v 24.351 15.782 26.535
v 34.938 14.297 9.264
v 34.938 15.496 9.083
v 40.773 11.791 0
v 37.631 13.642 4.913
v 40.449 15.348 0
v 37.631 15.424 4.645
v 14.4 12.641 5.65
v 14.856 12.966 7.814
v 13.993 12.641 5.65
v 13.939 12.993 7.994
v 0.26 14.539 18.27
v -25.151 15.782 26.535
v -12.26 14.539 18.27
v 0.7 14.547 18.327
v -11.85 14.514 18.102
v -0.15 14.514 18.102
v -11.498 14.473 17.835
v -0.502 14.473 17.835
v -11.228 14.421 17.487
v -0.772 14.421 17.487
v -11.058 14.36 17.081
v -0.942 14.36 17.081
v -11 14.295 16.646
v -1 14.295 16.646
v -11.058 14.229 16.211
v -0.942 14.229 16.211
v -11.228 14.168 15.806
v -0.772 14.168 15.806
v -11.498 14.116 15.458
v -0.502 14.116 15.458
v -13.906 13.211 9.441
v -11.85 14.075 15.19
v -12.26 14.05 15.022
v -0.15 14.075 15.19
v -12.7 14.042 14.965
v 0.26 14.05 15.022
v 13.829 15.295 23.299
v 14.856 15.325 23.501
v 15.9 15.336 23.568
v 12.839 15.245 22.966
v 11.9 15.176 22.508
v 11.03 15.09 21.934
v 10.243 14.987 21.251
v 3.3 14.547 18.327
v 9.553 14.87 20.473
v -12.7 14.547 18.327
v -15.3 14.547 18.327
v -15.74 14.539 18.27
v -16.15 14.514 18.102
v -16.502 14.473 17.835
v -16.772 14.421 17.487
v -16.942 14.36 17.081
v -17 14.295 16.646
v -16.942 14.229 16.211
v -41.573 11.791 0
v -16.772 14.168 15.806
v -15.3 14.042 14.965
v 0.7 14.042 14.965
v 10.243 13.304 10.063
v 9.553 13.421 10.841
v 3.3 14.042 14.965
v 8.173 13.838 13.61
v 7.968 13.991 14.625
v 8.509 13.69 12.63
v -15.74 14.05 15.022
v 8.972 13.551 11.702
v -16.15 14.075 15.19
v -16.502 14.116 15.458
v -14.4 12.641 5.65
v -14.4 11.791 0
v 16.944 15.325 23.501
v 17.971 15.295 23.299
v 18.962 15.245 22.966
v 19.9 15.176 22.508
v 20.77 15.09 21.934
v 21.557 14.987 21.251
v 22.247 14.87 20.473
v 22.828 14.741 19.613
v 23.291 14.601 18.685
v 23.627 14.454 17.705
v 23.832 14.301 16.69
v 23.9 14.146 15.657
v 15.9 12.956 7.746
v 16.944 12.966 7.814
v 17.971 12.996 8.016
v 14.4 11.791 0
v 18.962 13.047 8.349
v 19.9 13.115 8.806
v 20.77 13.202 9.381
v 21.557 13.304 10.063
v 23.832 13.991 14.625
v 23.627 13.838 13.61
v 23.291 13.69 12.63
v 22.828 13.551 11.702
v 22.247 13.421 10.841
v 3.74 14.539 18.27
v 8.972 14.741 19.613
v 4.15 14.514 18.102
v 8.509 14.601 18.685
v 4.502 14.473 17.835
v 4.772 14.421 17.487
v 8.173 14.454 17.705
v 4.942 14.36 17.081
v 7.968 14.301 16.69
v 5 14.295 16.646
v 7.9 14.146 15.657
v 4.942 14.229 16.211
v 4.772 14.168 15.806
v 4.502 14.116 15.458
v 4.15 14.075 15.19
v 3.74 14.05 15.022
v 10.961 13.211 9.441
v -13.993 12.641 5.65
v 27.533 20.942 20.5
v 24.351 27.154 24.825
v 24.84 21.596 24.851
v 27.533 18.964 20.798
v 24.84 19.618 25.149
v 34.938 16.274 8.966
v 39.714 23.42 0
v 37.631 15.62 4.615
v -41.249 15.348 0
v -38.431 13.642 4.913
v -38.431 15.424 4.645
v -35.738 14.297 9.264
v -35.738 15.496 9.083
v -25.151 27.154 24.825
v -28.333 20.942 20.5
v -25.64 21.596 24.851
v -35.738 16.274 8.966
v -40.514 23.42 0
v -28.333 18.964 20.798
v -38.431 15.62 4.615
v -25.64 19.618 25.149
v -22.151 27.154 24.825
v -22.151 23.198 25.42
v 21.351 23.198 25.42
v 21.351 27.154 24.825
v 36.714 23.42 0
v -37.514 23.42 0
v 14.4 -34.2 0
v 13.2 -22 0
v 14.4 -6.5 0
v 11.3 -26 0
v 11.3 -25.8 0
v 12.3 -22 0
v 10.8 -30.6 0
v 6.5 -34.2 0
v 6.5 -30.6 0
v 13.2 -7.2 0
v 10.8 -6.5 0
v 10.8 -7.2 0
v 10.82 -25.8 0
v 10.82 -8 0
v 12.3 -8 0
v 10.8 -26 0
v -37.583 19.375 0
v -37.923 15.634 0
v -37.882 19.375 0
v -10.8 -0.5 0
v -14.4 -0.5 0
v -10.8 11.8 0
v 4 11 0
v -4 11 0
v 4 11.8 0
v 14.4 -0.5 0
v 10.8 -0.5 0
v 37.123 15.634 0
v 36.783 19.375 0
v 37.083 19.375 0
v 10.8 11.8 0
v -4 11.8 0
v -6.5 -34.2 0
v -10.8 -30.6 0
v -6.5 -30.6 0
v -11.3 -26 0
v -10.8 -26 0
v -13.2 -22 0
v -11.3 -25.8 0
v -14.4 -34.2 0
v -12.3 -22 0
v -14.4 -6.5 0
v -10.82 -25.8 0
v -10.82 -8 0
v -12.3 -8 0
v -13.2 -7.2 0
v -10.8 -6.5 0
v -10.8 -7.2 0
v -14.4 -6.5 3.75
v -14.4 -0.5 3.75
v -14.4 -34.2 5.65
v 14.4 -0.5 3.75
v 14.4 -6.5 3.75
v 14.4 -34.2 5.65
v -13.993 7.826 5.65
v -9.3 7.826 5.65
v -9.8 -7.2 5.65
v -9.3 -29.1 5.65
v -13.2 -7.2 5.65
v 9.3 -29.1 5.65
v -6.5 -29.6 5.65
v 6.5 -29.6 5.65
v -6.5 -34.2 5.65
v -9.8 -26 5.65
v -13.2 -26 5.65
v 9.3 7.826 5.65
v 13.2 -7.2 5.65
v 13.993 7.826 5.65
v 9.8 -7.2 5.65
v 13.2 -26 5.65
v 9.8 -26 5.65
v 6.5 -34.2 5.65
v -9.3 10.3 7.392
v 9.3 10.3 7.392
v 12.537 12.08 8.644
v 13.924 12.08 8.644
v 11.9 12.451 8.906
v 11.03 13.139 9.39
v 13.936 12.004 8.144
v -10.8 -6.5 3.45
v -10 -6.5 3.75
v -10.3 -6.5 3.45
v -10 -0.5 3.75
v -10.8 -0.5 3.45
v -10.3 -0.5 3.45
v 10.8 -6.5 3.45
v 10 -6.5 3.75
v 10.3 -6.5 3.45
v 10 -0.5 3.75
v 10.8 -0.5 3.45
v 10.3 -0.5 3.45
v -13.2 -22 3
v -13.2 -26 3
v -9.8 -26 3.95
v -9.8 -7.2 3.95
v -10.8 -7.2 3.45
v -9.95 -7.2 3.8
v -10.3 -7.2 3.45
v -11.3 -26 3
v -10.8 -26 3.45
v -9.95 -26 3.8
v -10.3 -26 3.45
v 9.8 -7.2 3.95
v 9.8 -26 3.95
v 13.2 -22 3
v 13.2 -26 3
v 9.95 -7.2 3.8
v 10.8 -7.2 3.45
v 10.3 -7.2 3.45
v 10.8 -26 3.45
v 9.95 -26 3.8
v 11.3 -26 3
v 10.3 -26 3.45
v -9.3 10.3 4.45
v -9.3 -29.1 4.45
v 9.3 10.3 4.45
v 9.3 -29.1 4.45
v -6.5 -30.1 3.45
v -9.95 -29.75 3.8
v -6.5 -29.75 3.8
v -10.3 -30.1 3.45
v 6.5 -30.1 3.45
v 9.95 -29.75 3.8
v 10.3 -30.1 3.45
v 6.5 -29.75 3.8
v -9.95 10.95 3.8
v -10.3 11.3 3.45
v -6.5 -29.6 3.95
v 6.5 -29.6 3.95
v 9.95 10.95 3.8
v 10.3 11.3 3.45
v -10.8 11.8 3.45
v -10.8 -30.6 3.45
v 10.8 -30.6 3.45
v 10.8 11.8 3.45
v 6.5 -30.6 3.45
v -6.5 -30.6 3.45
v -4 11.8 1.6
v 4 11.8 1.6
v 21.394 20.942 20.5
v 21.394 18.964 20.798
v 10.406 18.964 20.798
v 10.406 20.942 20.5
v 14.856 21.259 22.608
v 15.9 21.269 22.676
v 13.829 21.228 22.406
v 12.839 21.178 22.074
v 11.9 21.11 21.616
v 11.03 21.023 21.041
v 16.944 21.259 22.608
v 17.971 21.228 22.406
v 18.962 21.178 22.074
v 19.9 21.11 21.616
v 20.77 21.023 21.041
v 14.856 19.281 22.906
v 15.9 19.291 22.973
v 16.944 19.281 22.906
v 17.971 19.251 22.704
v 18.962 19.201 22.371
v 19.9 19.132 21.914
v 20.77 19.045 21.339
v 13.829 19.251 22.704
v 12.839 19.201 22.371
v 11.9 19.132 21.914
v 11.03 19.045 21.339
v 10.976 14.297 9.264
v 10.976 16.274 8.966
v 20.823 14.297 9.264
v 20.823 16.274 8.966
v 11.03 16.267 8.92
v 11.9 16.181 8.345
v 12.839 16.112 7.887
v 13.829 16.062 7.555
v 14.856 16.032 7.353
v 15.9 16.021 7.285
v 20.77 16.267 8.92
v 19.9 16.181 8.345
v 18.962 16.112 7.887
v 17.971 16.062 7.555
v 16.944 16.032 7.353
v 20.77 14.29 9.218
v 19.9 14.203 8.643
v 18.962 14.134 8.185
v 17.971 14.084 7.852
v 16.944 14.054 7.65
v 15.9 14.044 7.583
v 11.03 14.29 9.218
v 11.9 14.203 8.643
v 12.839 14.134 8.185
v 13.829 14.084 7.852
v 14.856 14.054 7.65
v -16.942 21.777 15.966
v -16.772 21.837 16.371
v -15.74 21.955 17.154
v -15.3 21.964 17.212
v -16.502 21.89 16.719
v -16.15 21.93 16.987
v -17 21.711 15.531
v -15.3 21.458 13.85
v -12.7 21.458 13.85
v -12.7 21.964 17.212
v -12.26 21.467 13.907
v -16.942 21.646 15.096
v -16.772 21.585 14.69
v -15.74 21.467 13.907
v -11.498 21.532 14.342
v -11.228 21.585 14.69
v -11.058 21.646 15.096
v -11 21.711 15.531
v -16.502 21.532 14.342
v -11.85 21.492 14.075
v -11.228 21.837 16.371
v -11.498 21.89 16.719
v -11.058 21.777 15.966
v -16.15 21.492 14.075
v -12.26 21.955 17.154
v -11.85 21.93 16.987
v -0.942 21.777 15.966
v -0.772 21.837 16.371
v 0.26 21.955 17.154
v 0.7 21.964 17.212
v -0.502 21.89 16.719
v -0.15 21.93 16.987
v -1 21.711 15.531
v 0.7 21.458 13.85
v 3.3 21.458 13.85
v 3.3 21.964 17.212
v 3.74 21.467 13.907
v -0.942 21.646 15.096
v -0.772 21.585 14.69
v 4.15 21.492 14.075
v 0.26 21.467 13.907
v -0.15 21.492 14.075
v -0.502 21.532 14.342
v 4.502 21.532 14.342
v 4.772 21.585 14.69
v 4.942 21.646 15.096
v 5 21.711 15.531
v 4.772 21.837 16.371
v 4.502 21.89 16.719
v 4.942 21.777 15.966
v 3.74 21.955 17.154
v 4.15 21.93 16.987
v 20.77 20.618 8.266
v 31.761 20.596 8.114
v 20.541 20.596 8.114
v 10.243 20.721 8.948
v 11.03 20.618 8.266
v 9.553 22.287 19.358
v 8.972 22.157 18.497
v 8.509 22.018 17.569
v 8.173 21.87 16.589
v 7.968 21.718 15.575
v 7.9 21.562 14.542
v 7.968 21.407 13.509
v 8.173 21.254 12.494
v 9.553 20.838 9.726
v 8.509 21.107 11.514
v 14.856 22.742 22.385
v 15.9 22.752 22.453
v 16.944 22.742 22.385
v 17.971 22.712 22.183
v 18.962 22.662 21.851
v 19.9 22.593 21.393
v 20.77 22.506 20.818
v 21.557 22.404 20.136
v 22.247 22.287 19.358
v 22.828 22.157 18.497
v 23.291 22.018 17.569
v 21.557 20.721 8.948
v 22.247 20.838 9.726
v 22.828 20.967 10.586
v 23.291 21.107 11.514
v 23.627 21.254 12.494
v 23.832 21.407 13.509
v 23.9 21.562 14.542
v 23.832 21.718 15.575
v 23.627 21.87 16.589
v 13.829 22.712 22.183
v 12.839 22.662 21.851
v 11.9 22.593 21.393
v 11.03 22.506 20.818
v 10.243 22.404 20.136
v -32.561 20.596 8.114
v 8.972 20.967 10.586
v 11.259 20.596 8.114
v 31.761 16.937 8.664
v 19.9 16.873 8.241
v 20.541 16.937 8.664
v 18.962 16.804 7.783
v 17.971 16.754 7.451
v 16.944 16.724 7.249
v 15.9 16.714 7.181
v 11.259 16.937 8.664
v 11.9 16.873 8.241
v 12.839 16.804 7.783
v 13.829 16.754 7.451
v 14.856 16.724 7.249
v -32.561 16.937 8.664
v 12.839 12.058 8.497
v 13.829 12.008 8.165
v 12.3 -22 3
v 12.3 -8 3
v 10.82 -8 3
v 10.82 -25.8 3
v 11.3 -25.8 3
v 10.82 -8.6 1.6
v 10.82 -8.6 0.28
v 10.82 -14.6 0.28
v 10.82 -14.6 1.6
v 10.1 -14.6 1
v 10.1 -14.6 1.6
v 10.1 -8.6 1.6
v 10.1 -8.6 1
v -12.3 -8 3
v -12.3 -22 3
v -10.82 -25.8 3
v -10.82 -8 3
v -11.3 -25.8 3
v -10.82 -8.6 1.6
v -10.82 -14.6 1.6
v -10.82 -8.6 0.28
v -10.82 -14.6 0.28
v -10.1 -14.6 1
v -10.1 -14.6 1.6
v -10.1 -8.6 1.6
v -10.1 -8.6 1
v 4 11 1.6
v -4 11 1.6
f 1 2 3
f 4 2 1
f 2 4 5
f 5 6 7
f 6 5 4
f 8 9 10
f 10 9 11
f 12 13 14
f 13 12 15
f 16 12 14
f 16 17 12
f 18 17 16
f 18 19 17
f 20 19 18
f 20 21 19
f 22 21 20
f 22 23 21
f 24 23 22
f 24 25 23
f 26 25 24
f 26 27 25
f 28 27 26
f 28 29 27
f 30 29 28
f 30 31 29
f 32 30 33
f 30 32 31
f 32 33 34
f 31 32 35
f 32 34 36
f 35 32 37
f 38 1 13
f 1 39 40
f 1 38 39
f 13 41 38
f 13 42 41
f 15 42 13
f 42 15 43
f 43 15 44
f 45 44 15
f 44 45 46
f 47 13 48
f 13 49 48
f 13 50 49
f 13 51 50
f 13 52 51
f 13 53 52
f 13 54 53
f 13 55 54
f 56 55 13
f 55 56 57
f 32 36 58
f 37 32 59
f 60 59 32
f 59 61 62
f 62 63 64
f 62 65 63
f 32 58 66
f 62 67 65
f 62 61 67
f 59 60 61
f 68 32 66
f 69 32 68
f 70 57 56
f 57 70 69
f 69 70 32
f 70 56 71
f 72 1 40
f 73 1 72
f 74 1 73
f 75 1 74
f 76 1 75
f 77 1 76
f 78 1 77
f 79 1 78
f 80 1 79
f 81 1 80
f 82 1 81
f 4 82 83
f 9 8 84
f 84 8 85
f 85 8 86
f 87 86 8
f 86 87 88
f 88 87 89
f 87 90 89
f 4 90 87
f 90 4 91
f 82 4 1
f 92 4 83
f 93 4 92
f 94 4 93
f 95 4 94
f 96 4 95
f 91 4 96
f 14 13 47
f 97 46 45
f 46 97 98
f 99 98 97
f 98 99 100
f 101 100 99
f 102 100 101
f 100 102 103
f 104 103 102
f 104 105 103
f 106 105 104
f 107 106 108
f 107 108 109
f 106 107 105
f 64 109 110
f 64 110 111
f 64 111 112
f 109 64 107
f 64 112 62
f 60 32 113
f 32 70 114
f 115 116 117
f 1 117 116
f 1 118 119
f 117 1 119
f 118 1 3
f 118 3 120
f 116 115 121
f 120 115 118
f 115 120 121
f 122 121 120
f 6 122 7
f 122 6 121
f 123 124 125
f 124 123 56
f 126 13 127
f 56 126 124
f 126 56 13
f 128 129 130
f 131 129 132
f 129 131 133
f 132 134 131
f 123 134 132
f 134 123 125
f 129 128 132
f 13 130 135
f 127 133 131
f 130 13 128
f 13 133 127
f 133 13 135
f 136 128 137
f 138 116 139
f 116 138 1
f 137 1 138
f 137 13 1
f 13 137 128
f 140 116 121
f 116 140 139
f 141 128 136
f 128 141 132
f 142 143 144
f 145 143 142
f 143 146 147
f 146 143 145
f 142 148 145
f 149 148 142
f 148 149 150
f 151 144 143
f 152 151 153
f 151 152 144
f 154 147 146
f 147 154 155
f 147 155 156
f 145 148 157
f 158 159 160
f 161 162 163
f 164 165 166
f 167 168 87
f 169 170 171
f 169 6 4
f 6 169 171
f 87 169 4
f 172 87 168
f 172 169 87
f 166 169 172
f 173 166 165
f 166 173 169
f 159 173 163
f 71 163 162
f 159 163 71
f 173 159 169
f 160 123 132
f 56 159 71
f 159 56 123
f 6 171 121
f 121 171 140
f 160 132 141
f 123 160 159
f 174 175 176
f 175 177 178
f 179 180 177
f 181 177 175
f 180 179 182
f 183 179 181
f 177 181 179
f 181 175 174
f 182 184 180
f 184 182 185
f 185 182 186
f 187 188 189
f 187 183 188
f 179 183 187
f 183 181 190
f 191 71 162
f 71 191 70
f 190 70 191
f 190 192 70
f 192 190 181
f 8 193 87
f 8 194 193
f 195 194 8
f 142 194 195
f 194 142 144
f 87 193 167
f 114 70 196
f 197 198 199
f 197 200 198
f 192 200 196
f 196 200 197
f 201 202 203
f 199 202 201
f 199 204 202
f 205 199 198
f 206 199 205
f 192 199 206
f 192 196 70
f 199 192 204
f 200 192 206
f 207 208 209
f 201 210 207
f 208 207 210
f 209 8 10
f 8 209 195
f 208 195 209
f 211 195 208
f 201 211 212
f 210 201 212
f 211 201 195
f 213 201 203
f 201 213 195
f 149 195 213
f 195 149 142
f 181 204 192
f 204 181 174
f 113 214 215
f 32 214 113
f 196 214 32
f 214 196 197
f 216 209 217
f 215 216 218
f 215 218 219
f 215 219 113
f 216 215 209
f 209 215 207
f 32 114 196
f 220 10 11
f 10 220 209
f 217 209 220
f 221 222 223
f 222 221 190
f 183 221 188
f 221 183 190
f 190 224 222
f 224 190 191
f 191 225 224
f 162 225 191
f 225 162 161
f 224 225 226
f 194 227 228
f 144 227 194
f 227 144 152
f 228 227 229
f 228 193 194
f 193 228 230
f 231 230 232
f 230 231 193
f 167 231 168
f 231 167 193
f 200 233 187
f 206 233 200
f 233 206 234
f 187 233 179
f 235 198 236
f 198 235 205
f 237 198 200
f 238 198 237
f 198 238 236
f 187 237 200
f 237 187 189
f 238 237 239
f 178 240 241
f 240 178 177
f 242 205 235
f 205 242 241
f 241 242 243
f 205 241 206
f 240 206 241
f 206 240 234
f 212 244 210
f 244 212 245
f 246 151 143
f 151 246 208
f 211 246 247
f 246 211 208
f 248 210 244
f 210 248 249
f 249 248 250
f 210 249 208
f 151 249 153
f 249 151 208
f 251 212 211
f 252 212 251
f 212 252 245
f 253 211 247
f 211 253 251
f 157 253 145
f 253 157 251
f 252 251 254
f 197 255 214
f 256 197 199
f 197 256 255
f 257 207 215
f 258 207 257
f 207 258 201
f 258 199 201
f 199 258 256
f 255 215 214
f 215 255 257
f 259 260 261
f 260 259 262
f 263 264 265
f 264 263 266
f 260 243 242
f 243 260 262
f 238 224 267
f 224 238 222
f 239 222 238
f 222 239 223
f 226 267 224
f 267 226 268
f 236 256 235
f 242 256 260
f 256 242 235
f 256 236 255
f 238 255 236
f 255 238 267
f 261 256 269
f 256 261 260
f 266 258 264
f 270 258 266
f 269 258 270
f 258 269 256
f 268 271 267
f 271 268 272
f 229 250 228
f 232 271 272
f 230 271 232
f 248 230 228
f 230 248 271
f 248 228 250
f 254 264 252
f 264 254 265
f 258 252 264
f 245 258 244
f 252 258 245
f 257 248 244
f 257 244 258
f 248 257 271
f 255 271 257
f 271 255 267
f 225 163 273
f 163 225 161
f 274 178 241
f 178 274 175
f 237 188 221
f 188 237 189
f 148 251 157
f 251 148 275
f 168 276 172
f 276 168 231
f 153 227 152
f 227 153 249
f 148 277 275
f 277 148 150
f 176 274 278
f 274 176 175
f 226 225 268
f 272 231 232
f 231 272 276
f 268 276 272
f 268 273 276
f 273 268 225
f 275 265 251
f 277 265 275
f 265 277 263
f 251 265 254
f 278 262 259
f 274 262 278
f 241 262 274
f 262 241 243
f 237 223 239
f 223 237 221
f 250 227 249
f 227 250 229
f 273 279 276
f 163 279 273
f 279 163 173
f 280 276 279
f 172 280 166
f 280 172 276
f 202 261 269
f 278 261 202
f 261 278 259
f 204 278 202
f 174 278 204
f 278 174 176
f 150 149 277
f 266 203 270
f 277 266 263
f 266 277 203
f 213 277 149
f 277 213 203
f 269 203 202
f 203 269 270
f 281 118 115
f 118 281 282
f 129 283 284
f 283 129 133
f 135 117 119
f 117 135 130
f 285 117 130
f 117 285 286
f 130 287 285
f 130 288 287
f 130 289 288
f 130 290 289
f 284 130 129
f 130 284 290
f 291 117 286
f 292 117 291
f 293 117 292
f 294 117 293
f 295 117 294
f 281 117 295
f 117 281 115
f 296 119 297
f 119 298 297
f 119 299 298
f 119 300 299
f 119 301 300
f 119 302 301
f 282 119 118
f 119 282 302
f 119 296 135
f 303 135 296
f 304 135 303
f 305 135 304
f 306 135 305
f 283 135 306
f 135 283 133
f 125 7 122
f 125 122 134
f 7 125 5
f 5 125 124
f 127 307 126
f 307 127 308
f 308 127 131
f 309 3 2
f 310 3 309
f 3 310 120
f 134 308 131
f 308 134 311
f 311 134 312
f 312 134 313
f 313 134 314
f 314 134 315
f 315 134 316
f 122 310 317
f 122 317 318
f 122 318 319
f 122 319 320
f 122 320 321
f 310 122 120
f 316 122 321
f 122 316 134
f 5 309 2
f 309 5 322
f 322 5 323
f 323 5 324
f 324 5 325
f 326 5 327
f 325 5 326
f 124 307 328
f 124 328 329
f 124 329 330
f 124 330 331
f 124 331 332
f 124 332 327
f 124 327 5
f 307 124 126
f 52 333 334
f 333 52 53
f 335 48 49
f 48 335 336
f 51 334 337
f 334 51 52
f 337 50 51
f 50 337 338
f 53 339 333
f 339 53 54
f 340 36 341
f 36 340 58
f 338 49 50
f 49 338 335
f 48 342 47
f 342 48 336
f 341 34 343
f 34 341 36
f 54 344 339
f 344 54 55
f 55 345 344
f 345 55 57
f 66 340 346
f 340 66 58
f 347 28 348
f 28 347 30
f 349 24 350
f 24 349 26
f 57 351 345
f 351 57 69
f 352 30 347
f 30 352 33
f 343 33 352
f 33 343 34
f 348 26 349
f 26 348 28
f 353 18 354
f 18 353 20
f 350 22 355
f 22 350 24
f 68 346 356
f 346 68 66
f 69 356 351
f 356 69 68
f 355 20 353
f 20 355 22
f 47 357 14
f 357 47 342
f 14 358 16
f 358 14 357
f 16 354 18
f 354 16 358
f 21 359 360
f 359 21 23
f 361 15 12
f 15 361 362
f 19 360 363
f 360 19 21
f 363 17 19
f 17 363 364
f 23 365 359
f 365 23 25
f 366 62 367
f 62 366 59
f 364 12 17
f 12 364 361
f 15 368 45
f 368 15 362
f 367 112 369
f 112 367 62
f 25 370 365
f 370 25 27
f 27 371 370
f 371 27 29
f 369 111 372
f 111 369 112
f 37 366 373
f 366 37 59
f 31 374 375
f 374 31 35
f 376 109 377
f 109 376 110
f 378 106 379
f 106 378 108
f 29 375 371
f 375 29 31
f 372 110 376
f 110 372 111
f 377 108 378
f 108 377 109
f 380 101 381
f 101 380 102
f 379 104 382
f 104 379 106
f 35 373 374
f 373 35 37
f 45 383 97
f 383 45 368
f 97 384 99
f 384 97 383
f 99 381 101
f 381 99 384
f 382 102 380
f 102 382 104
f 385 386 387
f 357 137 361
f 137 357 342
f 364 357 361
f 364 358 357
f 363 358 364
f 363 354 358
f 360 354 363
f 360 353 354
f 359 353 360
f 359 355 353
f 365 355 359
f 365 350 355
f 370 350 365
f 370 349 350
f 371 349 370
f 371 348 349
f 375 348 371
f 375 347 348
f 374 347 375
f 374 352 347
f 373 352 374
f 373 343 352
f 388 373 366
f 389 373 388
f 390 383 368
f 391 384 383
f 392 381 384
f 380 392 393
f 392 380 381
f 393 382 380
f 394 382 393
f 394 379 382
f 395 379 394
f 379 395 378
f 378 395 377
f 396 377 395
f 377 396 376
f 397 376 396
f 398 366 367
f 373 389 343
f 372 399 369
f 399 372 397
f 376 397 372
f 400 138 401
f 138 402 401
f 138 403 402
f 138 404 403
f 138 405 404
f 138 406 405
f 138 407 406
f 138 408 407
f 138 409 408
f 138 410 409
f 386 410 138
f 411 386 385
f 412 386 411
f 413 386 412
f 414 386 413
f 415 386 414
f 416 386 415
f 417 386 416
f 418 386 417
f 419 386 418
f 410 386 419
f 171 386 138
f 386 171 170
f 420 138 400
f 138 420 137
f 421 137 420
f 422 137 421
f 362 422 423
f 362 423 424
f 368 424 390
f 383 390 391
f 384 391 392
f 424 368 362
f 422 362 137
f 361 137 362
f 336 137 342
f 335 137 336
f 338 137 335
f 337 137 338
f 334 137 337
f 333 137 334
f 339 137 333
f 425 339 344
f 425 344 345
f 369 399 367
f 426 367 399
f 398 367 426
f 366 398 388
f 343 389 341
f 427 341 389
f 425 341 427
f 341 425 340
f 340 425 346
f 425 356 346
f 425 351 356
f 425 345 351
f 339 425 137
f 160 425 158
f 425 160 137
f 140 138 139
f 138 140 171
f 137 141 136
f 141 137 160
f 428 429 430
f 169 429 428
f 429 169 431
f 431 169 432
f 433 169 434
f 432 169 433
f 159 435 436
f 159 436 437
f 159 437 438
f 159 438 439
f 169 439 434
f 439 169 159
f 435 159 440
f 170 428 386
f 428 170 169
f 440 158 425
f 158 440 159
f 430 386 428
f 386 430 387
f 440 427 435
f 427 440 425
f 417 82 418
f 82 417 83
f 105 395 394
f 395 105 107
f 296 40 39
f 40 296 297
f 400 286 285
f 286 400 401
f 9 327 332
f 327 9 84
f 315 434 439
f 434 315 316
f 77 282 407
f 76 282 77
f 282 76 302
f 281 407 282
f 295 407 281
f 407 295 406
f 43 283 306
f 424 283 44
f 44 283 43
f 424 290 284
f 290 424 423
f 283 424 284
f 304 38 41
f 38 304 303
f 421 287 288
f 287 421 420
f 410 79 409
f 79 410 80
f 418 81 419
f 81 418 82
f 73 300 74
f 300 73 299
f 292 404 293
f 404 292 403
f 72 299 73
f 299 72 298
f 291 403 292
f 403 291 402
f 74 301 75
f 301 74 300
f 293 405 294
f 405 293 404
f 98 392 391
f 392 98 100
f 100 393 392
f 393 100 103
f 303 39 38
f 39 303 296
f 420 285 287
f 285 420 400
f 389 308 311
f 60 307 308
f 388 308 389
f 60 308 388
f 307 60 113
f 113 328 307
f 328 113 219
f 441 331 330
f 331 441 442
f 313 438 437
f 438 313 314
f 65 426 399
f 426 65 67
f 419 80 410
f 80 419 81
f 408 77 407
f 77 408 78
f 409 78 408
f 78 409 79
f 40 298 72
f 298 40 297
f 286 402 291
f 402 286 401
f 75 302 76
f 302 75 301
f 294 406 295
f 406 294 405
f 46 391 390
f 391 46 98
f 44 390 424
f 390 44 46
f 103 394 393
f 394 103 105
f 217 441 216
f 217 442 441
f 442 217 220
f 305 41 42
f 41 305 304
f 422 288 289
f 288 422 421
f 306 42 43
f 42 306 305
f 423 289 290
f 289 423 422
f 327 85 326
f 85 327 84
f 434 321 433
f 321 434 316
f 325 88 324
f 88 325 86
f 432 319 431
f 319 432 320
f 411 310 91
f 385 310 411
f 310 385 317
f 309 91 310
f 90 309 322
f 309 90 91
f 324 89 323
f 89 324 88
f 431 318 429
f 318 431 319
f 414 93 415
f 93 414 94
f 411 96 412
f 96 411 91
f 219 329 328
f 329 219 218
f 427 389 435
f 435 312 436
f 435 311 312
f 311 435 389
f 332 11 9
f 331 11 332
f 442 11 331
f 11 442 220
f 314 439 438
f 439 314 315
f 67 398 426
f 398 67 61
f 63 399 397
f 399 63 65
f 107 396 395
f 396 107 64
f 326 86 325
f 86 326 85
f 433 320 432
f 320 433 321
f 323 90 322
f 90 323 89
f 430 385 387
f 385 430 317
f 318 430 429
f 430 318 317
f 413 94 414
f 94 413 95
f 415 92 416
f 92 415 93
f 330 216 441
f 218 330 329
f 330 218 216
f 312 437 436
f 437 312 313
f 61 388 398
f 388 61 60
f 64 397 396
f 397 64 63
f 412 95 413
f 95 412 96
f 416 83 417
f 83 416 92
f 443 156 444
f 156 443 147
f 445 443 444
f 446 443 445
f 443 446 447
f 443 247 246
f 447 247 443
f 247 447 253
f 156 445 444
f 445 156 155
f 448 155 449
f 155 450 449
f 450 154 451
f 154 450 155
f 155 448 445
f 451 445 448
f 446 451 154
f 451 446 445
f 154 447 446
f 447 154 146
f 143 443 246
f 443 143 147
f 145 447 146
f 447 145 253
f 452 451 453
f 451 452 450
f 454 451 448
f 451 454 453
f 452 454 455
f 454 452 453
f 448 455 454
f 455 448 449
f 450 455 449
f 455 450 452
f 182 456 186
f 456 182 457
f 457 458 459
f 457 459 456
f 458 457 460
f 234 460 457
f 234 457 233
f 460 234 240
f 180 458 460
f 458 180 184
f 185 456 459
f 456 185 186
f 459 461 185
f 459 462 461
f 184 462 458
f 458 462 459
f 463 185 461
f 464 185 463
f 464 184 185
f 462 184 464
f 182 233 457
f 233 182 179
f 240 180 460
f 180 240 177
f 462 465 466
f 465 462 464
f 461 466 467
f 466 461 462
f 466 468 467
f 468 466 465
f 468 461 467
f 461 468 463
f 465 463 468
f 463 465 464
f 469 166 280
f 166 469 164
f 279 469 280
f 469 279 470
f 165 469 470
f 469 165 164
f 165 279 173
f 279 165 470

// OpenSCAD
/*
Braccio gripper camera - ESP-EYE
================================
A frame for an ESP-EYE v2.1 (firmware/esp_eye_camera) that stands on top of
the gripper block, just behind the finger pivots. The board is upright, camera
end down and USB end up, with the lens looking forward along the fingers and
down at the grasp point. The lead leaves upwards, back along the arm.

The saddle it stands on, the two ways of fixing it (cable ties or screws) and
the gripper block dimensions are in braccio_gripper_camera_lib.scad. Read the
note there about measuring the block before printing.

AIM. The lens is on the gripper's plane of symmetry. The optical axis crosses
the gripper centre line `pick_distance` in front of the finger mounting face;
the tilt follows from that and from `camera_height`.

    pick_distance = 90    braccio_gripper_esp_eye_near.stl
    pick_distance = 120   braccio_gripper_esp_eye.stl      (default)
    pick_distance = 180   braccio_gripper_esp_eye_far.stl

THE BOARD, as braccio_camera_finger.scad and braccio_wrist_camera_mount.scad
have it (measured there off docs/images/esp-eye.png), with the outline checked
against the 41 x 21 mm that Espressif's distributors publish:

    board            41.0 (long) x 21.0 (wide) x 1.6 mm PCB
    camera barrel    front face, ~7 mm diameter, ~6.5 mm proud, lens axis
                     29.5 mm from the USB edge, on the centreline
    micro-USB        back face, at the 21 mm short edge, centred
    ESP32 module     back face, ~3.3 mm proud
    BOOT / RST       on the long edges, 26.0 mm from the USB edge

    https://www.espressif.com/en/products/devkits/esp-eye/resources
    https://wiki.dfrobot.com/ESP-EYE%20Development%20Board%20SKU:%20DFR0620

Espressif's own layout files (the ESP-EYE V2.1 reference design archive on the
first page) were not opened for this part, so treat every feature position as
a measurement to repeat on your board. Print the fit piece first:

    openscad -D 'part="fit_test"' -o braccio_gripper_esp_eye_fit_test.stl \
        braccio_gripper_esp_eye.scad

HOW THE BOARD IS HELD. Its back rim rests on a bevelled ledge round a window
that leaves the ESP32 module and the USB socket clear. A fixed hook catches
the camera end of the front face and two sprung latches click over the long
edges near the USB end: put the camera end in under the hook, then press the
USB end home. The frame is open in the middle of the USB end for the plug, and
cut away beside BOOT and RST.

`pose = "gripper"` exports the part where it sits, in the wrist roll frame of
the URDF, for scripts/check_gripper_cameras.py. The default is the print
pose: the lens side of the frame on the bed, the back of the board up.
*/

include <braccio_gripper_camera_lib.scad>

part = "holder";            // [holder, fit_test, electronics]
pose = "print";             // [print, gripper]

// ---------------------------------------------------------------- the board
board_length = 41.0;        // [20:0.5:70]
board_width = 21.0;         // [10:0.5:40]
board_thick = 1.6;
lens_from_usb = 29.5;       // lens optical axis, from the USB short edge
buttons_from_usb = 26.0;    // BOOT / RST, on the long edges
barrel_proud = 6.5;         // camera barrel above the front face
barrel_d = 7.0;
back_module_thick = 3.3;    // ESP32 module on the back face
usb_plug = [20, 11, 7];     // ESTIMATE: micro-USB plug body
camera_fov_deg = 66;        // ESTIMATE: OV2640 module

// ---------------------------------------------------------------- the frame
board_fit = 0.3;            // clearance round the board
board_slide = 0.8;          // extra length, to get the camera end under its hook
wall = 3.6;                 // frame wall: latch, its gap and an unbroken band
ledge = 1.5;                // border of the window the board's back rests on
back_band = 1.2;            // straight part of the window, at the back face
board_slack = 0.25;         // play between the board and the hooks
front_zone = 1.6;           // frame depth in front of the board's front face
latch_beam = 1.5;
latch_height = 3.0;
latch_reach = 0.7;
latch_gap = 0.9;
latch_from = 26.0;          // latch root, measured up from the lens
latch_to = 8.0;             // latch tip
latch_hook_len = 6.0;
end_hook_width = 8.0;
end_hook_reach = 0.8;
usb_relief = 13.0;          // gap in the frame at the USB end
button_relief = 6.0;

// ------------------------------------------------- height and setback
camera_height = 18.5;       // optical axis above the centre line at the frame
face_z = 27;                // back of the frame, along the gripper

// ------------------------------------------------------------------ derived
// Frame coordinates: lens at the origin, x across the board, y up the board
// towards the USB end, z from the back of the frame towards the lens.
function pocket_x() = board_width / 2 + board_fit;
function pocket_y0() = -(board_length - lens_from_usb) - board_fit;
function pocket_y1() = lens_from_usb + board_fit + board_slide;
function board_back_w() = back_band + 1.0;
function board_front_w() = board_back_w() + board_thick;
function hook_w() = board_front_w() + board_slack;
function frame_depth() = hook_w() + front_zone;
function lens_w() = board_front_w() + barrel_proud;
bed_w = frame_depth();

module frame_solid() {
    translate([-pocket_x() - wall, pocket_y0() - wall, 0])
        cube([2 * (pocket_x() + wall), pocket_y1() - pocket_y0() + 2 * wall,
              frame_depth()]);
}

// Space the board and its plugs need. Cut from everything.
module board_space() {
    cy = (pocket_y0() + pocket_y1()) / 2;
    lx = 2 * pocket_x();
    ly = pocket_y1() - pocket_y0();
    // the window behind the board
    translate([-pocket_x() + ledge, pocket_y0() + ledge, -200])
        cube([lx - 2 * ledge, ly - 2 * ledge, 200 + back_band + 0.4]);
    // the bevel the board's back rim rests on
    translate([0, cy, back_band])
        linear_extrude(height = 1.3,
                       scale = [(lx - 2 * ledge + 2.6) / (lx - 2 * ledge),
                                (ly - 2 * ledge + 2.6) / (ly - 2 * ledge)])
            square([lx - 2 * ledge, ly - 2 * ledge], center = true);
    // the board, and everything in front of it
    translate([-pocket_x(), pocket_y0(), board_back_w()])
        cube([lx, ly, 200]);
    // the plug, at the USB end
    translate([-usb_relief / 2, pocket_y1() - 1, -200])
        cube([usb_relief, wall + 30, 400]);
    // BOOT and RST: the frame is cut away beside them, in front of the ledge
    for (sx = [-1, 1])
        translate([sx > 0 ? pocket_x() - 1 : -pocket_x() - wall - 30,
                   lens_from_usb - buttons_from_usb - button_relief / 2,
                   board_back_w() - 0.3])
            cube([wall + 31, button_relief, 200]);
    // each latch springs in a slot; the band of frame outside it is left whole
    for (sx = [-1, 1])
        translate([sx > 0 ? pocket_x() - 1 : -pocket_x() - latch_beam - latch_gap,
                   latch_to - 0.8, -1])
            cube([latch_beam + latch_gap + 1, latch_from - latch_to + 0.8, 200]);
}

module latch_one() {
    // drawn for the +x wall; the other is its mirror image
    // the beam
    translate([pocket_x() + 0.02, latch_to, frame_depth()]) mirror([0, 0, 1])
        cube([latch_beam - 0.02, latch_from - latch_to - 0.2, latch_height]);
    // its root, across the slot and into the frame beyond it
    translate([pocket_x() + 0.5, latch_from - 4, frame_depth()])
        mirror([0, 0, 1])
            cube([latch_beam + latch_gap + 0.5, 7, latch_height]);
    // the hook, with a lead-in on the side the board is pushed in from
    translate([0, latch_to + 0.6 + latch_hook_len, 0]) rotate([90, 0, 0])
        linear_extrude(height = latch_hook_len)
            polygon([[pocket_x() + latch_beam / 2, hook_w()],
                     [pocket_x() - latch_reach, hook_w()],
                     [pocket_x() - latch_reach,
                      frame_depth() - latch_reach - 0.3],
                     [pocket_x() + 0.3, frame_depth()],
                     [pocket_x() + latch_beam / 2, frame_depth()]]);
}

module hooks_all() {
    latch_one();
    mirror([1, 0, 0]) latch_one();
    // the fixed hook over the camera end of the front face
    translate([-end_hook_width / 2, pocket_y0() - 1, frame_depth()])
        mirror([0, 0, 1])
            cube([end_hook_width, 1 + end_hook_reach, front_zone]);
}

module frame_patch() {
    // The foot of the frame, kept just inside its own surfaces.
    translate([0, 0, frame_depth()]) mirror([0, 0, 1])
        translate([-pocket_x() - wall + 0.4, pocket_y0() - wall + 0.4, 0])
            cube([2 * (pocket_x() + wall) - 0.8, wall + 4,
                  frame_depth() - 0.3]);
}

module gusset() {
    hull() {
        frame_patch();
        pad_strip(-pocket_x() - wall + 0.5, pocket_x() + wall - 0.5, face_z - 6);
    }
}

module esp_eye_holder() {
    difference() {
        union() {
            frame_solid();
            saddle();
            gusset();
        }
        board_space();
        from_gripper() saddle_cuts();
    }
    hooks_all();
}

module esp_eye_fit_test() {
    difference() {
        frame_solid();
        board_space();
    }
    hooks_all();
}

// The board, its module, the camera and a plug as plain blocks. Not printed.
module esp_eye_electronics() {
    y0 = -(board_length - lens_from_usb);
    color([0.1, 0.1, 0.12])
        translate([-board_width / 2, y0, board_back_w()])
            cube([board_width, board_length, board_thick]);
    color([0.6, 0.6, 0.62])
        translate([-8, y0 + 8, board_back_w() - back_module_thick])
            cube([16, 24, back_module_thick + 0.2]);
    color([0.05, 0.05, 0.05])
        translate([0, 0, board_front_w() - 0.2])
            cylinder(h = barrel_proud + 0.2, d = barrel_d + 1, $fn = 48);
    color([0.75, 0.75, 0.78])
        translate([-usb_plug[1] / 2, lens_from_usb - 4,
                   board_back_w() - usb_plug[2]])
            cube([usb_plug[1], usb_plug[0] + 4, usb_plug[2] + 0.2]);
}

// For the pictures: holder and board where they sit on the gripper.
module esp_eye_on_gripper() {
    on_gripper() {
        color([0.2, 0.55, 0.75]) esp_eye_holder();
        esp_eye_electronics();
    }
}

module the_part() {
    if (part == "fit_test") esp_eye_fit_test();
    else if (part == "electronics") esp_eye_electronics();
    else esp_eye_holder();
}

assert(wall >= latch_beam + latch_gap + 1.2,
       "wall leaves under 1.2 mm of frame outside the latch slots");
assert(frame_depth() - latch_reach - 0.3 > hook_w(),
       "front_zone is too shallow for the latch hook and its lead-in");

// Lens and target in the wrist roll frame, for the clearance check.
echo(str("gripper_camera {",
    "\"holder\": \"esp_eye\"",
    ", \"pick_distance\": ", pick_distance,
    ", \"tilt_deg\": ", tilt_deg(),
    ", \"camera_height\": ", camera_height,
    ", \"face_z\": ", face_z,
    ", \"target\": [0, 0, ", target_z(), "]",
    ", \"axis\": ", optical_dir(),
    ", \"lens\": ", holder_origin() + lens_w() * optical_dir(),
    ", \"fov_deg\": ", camera_fov_deg,
    ", \"ties\": ", ties,
    ", \"tie_tunnel\": ", [tie_tunnel_width, tie_tunnel_thick],
    ", \"block\": ", [block_centre_x, block_half_width, block_ref_z,
                      block_taper, block_top_y, block_thickness, jaw_fit + jaw],
    "}"));

if (pose == "gripper") on_gripper() the_part();
else to_print() the_part();
